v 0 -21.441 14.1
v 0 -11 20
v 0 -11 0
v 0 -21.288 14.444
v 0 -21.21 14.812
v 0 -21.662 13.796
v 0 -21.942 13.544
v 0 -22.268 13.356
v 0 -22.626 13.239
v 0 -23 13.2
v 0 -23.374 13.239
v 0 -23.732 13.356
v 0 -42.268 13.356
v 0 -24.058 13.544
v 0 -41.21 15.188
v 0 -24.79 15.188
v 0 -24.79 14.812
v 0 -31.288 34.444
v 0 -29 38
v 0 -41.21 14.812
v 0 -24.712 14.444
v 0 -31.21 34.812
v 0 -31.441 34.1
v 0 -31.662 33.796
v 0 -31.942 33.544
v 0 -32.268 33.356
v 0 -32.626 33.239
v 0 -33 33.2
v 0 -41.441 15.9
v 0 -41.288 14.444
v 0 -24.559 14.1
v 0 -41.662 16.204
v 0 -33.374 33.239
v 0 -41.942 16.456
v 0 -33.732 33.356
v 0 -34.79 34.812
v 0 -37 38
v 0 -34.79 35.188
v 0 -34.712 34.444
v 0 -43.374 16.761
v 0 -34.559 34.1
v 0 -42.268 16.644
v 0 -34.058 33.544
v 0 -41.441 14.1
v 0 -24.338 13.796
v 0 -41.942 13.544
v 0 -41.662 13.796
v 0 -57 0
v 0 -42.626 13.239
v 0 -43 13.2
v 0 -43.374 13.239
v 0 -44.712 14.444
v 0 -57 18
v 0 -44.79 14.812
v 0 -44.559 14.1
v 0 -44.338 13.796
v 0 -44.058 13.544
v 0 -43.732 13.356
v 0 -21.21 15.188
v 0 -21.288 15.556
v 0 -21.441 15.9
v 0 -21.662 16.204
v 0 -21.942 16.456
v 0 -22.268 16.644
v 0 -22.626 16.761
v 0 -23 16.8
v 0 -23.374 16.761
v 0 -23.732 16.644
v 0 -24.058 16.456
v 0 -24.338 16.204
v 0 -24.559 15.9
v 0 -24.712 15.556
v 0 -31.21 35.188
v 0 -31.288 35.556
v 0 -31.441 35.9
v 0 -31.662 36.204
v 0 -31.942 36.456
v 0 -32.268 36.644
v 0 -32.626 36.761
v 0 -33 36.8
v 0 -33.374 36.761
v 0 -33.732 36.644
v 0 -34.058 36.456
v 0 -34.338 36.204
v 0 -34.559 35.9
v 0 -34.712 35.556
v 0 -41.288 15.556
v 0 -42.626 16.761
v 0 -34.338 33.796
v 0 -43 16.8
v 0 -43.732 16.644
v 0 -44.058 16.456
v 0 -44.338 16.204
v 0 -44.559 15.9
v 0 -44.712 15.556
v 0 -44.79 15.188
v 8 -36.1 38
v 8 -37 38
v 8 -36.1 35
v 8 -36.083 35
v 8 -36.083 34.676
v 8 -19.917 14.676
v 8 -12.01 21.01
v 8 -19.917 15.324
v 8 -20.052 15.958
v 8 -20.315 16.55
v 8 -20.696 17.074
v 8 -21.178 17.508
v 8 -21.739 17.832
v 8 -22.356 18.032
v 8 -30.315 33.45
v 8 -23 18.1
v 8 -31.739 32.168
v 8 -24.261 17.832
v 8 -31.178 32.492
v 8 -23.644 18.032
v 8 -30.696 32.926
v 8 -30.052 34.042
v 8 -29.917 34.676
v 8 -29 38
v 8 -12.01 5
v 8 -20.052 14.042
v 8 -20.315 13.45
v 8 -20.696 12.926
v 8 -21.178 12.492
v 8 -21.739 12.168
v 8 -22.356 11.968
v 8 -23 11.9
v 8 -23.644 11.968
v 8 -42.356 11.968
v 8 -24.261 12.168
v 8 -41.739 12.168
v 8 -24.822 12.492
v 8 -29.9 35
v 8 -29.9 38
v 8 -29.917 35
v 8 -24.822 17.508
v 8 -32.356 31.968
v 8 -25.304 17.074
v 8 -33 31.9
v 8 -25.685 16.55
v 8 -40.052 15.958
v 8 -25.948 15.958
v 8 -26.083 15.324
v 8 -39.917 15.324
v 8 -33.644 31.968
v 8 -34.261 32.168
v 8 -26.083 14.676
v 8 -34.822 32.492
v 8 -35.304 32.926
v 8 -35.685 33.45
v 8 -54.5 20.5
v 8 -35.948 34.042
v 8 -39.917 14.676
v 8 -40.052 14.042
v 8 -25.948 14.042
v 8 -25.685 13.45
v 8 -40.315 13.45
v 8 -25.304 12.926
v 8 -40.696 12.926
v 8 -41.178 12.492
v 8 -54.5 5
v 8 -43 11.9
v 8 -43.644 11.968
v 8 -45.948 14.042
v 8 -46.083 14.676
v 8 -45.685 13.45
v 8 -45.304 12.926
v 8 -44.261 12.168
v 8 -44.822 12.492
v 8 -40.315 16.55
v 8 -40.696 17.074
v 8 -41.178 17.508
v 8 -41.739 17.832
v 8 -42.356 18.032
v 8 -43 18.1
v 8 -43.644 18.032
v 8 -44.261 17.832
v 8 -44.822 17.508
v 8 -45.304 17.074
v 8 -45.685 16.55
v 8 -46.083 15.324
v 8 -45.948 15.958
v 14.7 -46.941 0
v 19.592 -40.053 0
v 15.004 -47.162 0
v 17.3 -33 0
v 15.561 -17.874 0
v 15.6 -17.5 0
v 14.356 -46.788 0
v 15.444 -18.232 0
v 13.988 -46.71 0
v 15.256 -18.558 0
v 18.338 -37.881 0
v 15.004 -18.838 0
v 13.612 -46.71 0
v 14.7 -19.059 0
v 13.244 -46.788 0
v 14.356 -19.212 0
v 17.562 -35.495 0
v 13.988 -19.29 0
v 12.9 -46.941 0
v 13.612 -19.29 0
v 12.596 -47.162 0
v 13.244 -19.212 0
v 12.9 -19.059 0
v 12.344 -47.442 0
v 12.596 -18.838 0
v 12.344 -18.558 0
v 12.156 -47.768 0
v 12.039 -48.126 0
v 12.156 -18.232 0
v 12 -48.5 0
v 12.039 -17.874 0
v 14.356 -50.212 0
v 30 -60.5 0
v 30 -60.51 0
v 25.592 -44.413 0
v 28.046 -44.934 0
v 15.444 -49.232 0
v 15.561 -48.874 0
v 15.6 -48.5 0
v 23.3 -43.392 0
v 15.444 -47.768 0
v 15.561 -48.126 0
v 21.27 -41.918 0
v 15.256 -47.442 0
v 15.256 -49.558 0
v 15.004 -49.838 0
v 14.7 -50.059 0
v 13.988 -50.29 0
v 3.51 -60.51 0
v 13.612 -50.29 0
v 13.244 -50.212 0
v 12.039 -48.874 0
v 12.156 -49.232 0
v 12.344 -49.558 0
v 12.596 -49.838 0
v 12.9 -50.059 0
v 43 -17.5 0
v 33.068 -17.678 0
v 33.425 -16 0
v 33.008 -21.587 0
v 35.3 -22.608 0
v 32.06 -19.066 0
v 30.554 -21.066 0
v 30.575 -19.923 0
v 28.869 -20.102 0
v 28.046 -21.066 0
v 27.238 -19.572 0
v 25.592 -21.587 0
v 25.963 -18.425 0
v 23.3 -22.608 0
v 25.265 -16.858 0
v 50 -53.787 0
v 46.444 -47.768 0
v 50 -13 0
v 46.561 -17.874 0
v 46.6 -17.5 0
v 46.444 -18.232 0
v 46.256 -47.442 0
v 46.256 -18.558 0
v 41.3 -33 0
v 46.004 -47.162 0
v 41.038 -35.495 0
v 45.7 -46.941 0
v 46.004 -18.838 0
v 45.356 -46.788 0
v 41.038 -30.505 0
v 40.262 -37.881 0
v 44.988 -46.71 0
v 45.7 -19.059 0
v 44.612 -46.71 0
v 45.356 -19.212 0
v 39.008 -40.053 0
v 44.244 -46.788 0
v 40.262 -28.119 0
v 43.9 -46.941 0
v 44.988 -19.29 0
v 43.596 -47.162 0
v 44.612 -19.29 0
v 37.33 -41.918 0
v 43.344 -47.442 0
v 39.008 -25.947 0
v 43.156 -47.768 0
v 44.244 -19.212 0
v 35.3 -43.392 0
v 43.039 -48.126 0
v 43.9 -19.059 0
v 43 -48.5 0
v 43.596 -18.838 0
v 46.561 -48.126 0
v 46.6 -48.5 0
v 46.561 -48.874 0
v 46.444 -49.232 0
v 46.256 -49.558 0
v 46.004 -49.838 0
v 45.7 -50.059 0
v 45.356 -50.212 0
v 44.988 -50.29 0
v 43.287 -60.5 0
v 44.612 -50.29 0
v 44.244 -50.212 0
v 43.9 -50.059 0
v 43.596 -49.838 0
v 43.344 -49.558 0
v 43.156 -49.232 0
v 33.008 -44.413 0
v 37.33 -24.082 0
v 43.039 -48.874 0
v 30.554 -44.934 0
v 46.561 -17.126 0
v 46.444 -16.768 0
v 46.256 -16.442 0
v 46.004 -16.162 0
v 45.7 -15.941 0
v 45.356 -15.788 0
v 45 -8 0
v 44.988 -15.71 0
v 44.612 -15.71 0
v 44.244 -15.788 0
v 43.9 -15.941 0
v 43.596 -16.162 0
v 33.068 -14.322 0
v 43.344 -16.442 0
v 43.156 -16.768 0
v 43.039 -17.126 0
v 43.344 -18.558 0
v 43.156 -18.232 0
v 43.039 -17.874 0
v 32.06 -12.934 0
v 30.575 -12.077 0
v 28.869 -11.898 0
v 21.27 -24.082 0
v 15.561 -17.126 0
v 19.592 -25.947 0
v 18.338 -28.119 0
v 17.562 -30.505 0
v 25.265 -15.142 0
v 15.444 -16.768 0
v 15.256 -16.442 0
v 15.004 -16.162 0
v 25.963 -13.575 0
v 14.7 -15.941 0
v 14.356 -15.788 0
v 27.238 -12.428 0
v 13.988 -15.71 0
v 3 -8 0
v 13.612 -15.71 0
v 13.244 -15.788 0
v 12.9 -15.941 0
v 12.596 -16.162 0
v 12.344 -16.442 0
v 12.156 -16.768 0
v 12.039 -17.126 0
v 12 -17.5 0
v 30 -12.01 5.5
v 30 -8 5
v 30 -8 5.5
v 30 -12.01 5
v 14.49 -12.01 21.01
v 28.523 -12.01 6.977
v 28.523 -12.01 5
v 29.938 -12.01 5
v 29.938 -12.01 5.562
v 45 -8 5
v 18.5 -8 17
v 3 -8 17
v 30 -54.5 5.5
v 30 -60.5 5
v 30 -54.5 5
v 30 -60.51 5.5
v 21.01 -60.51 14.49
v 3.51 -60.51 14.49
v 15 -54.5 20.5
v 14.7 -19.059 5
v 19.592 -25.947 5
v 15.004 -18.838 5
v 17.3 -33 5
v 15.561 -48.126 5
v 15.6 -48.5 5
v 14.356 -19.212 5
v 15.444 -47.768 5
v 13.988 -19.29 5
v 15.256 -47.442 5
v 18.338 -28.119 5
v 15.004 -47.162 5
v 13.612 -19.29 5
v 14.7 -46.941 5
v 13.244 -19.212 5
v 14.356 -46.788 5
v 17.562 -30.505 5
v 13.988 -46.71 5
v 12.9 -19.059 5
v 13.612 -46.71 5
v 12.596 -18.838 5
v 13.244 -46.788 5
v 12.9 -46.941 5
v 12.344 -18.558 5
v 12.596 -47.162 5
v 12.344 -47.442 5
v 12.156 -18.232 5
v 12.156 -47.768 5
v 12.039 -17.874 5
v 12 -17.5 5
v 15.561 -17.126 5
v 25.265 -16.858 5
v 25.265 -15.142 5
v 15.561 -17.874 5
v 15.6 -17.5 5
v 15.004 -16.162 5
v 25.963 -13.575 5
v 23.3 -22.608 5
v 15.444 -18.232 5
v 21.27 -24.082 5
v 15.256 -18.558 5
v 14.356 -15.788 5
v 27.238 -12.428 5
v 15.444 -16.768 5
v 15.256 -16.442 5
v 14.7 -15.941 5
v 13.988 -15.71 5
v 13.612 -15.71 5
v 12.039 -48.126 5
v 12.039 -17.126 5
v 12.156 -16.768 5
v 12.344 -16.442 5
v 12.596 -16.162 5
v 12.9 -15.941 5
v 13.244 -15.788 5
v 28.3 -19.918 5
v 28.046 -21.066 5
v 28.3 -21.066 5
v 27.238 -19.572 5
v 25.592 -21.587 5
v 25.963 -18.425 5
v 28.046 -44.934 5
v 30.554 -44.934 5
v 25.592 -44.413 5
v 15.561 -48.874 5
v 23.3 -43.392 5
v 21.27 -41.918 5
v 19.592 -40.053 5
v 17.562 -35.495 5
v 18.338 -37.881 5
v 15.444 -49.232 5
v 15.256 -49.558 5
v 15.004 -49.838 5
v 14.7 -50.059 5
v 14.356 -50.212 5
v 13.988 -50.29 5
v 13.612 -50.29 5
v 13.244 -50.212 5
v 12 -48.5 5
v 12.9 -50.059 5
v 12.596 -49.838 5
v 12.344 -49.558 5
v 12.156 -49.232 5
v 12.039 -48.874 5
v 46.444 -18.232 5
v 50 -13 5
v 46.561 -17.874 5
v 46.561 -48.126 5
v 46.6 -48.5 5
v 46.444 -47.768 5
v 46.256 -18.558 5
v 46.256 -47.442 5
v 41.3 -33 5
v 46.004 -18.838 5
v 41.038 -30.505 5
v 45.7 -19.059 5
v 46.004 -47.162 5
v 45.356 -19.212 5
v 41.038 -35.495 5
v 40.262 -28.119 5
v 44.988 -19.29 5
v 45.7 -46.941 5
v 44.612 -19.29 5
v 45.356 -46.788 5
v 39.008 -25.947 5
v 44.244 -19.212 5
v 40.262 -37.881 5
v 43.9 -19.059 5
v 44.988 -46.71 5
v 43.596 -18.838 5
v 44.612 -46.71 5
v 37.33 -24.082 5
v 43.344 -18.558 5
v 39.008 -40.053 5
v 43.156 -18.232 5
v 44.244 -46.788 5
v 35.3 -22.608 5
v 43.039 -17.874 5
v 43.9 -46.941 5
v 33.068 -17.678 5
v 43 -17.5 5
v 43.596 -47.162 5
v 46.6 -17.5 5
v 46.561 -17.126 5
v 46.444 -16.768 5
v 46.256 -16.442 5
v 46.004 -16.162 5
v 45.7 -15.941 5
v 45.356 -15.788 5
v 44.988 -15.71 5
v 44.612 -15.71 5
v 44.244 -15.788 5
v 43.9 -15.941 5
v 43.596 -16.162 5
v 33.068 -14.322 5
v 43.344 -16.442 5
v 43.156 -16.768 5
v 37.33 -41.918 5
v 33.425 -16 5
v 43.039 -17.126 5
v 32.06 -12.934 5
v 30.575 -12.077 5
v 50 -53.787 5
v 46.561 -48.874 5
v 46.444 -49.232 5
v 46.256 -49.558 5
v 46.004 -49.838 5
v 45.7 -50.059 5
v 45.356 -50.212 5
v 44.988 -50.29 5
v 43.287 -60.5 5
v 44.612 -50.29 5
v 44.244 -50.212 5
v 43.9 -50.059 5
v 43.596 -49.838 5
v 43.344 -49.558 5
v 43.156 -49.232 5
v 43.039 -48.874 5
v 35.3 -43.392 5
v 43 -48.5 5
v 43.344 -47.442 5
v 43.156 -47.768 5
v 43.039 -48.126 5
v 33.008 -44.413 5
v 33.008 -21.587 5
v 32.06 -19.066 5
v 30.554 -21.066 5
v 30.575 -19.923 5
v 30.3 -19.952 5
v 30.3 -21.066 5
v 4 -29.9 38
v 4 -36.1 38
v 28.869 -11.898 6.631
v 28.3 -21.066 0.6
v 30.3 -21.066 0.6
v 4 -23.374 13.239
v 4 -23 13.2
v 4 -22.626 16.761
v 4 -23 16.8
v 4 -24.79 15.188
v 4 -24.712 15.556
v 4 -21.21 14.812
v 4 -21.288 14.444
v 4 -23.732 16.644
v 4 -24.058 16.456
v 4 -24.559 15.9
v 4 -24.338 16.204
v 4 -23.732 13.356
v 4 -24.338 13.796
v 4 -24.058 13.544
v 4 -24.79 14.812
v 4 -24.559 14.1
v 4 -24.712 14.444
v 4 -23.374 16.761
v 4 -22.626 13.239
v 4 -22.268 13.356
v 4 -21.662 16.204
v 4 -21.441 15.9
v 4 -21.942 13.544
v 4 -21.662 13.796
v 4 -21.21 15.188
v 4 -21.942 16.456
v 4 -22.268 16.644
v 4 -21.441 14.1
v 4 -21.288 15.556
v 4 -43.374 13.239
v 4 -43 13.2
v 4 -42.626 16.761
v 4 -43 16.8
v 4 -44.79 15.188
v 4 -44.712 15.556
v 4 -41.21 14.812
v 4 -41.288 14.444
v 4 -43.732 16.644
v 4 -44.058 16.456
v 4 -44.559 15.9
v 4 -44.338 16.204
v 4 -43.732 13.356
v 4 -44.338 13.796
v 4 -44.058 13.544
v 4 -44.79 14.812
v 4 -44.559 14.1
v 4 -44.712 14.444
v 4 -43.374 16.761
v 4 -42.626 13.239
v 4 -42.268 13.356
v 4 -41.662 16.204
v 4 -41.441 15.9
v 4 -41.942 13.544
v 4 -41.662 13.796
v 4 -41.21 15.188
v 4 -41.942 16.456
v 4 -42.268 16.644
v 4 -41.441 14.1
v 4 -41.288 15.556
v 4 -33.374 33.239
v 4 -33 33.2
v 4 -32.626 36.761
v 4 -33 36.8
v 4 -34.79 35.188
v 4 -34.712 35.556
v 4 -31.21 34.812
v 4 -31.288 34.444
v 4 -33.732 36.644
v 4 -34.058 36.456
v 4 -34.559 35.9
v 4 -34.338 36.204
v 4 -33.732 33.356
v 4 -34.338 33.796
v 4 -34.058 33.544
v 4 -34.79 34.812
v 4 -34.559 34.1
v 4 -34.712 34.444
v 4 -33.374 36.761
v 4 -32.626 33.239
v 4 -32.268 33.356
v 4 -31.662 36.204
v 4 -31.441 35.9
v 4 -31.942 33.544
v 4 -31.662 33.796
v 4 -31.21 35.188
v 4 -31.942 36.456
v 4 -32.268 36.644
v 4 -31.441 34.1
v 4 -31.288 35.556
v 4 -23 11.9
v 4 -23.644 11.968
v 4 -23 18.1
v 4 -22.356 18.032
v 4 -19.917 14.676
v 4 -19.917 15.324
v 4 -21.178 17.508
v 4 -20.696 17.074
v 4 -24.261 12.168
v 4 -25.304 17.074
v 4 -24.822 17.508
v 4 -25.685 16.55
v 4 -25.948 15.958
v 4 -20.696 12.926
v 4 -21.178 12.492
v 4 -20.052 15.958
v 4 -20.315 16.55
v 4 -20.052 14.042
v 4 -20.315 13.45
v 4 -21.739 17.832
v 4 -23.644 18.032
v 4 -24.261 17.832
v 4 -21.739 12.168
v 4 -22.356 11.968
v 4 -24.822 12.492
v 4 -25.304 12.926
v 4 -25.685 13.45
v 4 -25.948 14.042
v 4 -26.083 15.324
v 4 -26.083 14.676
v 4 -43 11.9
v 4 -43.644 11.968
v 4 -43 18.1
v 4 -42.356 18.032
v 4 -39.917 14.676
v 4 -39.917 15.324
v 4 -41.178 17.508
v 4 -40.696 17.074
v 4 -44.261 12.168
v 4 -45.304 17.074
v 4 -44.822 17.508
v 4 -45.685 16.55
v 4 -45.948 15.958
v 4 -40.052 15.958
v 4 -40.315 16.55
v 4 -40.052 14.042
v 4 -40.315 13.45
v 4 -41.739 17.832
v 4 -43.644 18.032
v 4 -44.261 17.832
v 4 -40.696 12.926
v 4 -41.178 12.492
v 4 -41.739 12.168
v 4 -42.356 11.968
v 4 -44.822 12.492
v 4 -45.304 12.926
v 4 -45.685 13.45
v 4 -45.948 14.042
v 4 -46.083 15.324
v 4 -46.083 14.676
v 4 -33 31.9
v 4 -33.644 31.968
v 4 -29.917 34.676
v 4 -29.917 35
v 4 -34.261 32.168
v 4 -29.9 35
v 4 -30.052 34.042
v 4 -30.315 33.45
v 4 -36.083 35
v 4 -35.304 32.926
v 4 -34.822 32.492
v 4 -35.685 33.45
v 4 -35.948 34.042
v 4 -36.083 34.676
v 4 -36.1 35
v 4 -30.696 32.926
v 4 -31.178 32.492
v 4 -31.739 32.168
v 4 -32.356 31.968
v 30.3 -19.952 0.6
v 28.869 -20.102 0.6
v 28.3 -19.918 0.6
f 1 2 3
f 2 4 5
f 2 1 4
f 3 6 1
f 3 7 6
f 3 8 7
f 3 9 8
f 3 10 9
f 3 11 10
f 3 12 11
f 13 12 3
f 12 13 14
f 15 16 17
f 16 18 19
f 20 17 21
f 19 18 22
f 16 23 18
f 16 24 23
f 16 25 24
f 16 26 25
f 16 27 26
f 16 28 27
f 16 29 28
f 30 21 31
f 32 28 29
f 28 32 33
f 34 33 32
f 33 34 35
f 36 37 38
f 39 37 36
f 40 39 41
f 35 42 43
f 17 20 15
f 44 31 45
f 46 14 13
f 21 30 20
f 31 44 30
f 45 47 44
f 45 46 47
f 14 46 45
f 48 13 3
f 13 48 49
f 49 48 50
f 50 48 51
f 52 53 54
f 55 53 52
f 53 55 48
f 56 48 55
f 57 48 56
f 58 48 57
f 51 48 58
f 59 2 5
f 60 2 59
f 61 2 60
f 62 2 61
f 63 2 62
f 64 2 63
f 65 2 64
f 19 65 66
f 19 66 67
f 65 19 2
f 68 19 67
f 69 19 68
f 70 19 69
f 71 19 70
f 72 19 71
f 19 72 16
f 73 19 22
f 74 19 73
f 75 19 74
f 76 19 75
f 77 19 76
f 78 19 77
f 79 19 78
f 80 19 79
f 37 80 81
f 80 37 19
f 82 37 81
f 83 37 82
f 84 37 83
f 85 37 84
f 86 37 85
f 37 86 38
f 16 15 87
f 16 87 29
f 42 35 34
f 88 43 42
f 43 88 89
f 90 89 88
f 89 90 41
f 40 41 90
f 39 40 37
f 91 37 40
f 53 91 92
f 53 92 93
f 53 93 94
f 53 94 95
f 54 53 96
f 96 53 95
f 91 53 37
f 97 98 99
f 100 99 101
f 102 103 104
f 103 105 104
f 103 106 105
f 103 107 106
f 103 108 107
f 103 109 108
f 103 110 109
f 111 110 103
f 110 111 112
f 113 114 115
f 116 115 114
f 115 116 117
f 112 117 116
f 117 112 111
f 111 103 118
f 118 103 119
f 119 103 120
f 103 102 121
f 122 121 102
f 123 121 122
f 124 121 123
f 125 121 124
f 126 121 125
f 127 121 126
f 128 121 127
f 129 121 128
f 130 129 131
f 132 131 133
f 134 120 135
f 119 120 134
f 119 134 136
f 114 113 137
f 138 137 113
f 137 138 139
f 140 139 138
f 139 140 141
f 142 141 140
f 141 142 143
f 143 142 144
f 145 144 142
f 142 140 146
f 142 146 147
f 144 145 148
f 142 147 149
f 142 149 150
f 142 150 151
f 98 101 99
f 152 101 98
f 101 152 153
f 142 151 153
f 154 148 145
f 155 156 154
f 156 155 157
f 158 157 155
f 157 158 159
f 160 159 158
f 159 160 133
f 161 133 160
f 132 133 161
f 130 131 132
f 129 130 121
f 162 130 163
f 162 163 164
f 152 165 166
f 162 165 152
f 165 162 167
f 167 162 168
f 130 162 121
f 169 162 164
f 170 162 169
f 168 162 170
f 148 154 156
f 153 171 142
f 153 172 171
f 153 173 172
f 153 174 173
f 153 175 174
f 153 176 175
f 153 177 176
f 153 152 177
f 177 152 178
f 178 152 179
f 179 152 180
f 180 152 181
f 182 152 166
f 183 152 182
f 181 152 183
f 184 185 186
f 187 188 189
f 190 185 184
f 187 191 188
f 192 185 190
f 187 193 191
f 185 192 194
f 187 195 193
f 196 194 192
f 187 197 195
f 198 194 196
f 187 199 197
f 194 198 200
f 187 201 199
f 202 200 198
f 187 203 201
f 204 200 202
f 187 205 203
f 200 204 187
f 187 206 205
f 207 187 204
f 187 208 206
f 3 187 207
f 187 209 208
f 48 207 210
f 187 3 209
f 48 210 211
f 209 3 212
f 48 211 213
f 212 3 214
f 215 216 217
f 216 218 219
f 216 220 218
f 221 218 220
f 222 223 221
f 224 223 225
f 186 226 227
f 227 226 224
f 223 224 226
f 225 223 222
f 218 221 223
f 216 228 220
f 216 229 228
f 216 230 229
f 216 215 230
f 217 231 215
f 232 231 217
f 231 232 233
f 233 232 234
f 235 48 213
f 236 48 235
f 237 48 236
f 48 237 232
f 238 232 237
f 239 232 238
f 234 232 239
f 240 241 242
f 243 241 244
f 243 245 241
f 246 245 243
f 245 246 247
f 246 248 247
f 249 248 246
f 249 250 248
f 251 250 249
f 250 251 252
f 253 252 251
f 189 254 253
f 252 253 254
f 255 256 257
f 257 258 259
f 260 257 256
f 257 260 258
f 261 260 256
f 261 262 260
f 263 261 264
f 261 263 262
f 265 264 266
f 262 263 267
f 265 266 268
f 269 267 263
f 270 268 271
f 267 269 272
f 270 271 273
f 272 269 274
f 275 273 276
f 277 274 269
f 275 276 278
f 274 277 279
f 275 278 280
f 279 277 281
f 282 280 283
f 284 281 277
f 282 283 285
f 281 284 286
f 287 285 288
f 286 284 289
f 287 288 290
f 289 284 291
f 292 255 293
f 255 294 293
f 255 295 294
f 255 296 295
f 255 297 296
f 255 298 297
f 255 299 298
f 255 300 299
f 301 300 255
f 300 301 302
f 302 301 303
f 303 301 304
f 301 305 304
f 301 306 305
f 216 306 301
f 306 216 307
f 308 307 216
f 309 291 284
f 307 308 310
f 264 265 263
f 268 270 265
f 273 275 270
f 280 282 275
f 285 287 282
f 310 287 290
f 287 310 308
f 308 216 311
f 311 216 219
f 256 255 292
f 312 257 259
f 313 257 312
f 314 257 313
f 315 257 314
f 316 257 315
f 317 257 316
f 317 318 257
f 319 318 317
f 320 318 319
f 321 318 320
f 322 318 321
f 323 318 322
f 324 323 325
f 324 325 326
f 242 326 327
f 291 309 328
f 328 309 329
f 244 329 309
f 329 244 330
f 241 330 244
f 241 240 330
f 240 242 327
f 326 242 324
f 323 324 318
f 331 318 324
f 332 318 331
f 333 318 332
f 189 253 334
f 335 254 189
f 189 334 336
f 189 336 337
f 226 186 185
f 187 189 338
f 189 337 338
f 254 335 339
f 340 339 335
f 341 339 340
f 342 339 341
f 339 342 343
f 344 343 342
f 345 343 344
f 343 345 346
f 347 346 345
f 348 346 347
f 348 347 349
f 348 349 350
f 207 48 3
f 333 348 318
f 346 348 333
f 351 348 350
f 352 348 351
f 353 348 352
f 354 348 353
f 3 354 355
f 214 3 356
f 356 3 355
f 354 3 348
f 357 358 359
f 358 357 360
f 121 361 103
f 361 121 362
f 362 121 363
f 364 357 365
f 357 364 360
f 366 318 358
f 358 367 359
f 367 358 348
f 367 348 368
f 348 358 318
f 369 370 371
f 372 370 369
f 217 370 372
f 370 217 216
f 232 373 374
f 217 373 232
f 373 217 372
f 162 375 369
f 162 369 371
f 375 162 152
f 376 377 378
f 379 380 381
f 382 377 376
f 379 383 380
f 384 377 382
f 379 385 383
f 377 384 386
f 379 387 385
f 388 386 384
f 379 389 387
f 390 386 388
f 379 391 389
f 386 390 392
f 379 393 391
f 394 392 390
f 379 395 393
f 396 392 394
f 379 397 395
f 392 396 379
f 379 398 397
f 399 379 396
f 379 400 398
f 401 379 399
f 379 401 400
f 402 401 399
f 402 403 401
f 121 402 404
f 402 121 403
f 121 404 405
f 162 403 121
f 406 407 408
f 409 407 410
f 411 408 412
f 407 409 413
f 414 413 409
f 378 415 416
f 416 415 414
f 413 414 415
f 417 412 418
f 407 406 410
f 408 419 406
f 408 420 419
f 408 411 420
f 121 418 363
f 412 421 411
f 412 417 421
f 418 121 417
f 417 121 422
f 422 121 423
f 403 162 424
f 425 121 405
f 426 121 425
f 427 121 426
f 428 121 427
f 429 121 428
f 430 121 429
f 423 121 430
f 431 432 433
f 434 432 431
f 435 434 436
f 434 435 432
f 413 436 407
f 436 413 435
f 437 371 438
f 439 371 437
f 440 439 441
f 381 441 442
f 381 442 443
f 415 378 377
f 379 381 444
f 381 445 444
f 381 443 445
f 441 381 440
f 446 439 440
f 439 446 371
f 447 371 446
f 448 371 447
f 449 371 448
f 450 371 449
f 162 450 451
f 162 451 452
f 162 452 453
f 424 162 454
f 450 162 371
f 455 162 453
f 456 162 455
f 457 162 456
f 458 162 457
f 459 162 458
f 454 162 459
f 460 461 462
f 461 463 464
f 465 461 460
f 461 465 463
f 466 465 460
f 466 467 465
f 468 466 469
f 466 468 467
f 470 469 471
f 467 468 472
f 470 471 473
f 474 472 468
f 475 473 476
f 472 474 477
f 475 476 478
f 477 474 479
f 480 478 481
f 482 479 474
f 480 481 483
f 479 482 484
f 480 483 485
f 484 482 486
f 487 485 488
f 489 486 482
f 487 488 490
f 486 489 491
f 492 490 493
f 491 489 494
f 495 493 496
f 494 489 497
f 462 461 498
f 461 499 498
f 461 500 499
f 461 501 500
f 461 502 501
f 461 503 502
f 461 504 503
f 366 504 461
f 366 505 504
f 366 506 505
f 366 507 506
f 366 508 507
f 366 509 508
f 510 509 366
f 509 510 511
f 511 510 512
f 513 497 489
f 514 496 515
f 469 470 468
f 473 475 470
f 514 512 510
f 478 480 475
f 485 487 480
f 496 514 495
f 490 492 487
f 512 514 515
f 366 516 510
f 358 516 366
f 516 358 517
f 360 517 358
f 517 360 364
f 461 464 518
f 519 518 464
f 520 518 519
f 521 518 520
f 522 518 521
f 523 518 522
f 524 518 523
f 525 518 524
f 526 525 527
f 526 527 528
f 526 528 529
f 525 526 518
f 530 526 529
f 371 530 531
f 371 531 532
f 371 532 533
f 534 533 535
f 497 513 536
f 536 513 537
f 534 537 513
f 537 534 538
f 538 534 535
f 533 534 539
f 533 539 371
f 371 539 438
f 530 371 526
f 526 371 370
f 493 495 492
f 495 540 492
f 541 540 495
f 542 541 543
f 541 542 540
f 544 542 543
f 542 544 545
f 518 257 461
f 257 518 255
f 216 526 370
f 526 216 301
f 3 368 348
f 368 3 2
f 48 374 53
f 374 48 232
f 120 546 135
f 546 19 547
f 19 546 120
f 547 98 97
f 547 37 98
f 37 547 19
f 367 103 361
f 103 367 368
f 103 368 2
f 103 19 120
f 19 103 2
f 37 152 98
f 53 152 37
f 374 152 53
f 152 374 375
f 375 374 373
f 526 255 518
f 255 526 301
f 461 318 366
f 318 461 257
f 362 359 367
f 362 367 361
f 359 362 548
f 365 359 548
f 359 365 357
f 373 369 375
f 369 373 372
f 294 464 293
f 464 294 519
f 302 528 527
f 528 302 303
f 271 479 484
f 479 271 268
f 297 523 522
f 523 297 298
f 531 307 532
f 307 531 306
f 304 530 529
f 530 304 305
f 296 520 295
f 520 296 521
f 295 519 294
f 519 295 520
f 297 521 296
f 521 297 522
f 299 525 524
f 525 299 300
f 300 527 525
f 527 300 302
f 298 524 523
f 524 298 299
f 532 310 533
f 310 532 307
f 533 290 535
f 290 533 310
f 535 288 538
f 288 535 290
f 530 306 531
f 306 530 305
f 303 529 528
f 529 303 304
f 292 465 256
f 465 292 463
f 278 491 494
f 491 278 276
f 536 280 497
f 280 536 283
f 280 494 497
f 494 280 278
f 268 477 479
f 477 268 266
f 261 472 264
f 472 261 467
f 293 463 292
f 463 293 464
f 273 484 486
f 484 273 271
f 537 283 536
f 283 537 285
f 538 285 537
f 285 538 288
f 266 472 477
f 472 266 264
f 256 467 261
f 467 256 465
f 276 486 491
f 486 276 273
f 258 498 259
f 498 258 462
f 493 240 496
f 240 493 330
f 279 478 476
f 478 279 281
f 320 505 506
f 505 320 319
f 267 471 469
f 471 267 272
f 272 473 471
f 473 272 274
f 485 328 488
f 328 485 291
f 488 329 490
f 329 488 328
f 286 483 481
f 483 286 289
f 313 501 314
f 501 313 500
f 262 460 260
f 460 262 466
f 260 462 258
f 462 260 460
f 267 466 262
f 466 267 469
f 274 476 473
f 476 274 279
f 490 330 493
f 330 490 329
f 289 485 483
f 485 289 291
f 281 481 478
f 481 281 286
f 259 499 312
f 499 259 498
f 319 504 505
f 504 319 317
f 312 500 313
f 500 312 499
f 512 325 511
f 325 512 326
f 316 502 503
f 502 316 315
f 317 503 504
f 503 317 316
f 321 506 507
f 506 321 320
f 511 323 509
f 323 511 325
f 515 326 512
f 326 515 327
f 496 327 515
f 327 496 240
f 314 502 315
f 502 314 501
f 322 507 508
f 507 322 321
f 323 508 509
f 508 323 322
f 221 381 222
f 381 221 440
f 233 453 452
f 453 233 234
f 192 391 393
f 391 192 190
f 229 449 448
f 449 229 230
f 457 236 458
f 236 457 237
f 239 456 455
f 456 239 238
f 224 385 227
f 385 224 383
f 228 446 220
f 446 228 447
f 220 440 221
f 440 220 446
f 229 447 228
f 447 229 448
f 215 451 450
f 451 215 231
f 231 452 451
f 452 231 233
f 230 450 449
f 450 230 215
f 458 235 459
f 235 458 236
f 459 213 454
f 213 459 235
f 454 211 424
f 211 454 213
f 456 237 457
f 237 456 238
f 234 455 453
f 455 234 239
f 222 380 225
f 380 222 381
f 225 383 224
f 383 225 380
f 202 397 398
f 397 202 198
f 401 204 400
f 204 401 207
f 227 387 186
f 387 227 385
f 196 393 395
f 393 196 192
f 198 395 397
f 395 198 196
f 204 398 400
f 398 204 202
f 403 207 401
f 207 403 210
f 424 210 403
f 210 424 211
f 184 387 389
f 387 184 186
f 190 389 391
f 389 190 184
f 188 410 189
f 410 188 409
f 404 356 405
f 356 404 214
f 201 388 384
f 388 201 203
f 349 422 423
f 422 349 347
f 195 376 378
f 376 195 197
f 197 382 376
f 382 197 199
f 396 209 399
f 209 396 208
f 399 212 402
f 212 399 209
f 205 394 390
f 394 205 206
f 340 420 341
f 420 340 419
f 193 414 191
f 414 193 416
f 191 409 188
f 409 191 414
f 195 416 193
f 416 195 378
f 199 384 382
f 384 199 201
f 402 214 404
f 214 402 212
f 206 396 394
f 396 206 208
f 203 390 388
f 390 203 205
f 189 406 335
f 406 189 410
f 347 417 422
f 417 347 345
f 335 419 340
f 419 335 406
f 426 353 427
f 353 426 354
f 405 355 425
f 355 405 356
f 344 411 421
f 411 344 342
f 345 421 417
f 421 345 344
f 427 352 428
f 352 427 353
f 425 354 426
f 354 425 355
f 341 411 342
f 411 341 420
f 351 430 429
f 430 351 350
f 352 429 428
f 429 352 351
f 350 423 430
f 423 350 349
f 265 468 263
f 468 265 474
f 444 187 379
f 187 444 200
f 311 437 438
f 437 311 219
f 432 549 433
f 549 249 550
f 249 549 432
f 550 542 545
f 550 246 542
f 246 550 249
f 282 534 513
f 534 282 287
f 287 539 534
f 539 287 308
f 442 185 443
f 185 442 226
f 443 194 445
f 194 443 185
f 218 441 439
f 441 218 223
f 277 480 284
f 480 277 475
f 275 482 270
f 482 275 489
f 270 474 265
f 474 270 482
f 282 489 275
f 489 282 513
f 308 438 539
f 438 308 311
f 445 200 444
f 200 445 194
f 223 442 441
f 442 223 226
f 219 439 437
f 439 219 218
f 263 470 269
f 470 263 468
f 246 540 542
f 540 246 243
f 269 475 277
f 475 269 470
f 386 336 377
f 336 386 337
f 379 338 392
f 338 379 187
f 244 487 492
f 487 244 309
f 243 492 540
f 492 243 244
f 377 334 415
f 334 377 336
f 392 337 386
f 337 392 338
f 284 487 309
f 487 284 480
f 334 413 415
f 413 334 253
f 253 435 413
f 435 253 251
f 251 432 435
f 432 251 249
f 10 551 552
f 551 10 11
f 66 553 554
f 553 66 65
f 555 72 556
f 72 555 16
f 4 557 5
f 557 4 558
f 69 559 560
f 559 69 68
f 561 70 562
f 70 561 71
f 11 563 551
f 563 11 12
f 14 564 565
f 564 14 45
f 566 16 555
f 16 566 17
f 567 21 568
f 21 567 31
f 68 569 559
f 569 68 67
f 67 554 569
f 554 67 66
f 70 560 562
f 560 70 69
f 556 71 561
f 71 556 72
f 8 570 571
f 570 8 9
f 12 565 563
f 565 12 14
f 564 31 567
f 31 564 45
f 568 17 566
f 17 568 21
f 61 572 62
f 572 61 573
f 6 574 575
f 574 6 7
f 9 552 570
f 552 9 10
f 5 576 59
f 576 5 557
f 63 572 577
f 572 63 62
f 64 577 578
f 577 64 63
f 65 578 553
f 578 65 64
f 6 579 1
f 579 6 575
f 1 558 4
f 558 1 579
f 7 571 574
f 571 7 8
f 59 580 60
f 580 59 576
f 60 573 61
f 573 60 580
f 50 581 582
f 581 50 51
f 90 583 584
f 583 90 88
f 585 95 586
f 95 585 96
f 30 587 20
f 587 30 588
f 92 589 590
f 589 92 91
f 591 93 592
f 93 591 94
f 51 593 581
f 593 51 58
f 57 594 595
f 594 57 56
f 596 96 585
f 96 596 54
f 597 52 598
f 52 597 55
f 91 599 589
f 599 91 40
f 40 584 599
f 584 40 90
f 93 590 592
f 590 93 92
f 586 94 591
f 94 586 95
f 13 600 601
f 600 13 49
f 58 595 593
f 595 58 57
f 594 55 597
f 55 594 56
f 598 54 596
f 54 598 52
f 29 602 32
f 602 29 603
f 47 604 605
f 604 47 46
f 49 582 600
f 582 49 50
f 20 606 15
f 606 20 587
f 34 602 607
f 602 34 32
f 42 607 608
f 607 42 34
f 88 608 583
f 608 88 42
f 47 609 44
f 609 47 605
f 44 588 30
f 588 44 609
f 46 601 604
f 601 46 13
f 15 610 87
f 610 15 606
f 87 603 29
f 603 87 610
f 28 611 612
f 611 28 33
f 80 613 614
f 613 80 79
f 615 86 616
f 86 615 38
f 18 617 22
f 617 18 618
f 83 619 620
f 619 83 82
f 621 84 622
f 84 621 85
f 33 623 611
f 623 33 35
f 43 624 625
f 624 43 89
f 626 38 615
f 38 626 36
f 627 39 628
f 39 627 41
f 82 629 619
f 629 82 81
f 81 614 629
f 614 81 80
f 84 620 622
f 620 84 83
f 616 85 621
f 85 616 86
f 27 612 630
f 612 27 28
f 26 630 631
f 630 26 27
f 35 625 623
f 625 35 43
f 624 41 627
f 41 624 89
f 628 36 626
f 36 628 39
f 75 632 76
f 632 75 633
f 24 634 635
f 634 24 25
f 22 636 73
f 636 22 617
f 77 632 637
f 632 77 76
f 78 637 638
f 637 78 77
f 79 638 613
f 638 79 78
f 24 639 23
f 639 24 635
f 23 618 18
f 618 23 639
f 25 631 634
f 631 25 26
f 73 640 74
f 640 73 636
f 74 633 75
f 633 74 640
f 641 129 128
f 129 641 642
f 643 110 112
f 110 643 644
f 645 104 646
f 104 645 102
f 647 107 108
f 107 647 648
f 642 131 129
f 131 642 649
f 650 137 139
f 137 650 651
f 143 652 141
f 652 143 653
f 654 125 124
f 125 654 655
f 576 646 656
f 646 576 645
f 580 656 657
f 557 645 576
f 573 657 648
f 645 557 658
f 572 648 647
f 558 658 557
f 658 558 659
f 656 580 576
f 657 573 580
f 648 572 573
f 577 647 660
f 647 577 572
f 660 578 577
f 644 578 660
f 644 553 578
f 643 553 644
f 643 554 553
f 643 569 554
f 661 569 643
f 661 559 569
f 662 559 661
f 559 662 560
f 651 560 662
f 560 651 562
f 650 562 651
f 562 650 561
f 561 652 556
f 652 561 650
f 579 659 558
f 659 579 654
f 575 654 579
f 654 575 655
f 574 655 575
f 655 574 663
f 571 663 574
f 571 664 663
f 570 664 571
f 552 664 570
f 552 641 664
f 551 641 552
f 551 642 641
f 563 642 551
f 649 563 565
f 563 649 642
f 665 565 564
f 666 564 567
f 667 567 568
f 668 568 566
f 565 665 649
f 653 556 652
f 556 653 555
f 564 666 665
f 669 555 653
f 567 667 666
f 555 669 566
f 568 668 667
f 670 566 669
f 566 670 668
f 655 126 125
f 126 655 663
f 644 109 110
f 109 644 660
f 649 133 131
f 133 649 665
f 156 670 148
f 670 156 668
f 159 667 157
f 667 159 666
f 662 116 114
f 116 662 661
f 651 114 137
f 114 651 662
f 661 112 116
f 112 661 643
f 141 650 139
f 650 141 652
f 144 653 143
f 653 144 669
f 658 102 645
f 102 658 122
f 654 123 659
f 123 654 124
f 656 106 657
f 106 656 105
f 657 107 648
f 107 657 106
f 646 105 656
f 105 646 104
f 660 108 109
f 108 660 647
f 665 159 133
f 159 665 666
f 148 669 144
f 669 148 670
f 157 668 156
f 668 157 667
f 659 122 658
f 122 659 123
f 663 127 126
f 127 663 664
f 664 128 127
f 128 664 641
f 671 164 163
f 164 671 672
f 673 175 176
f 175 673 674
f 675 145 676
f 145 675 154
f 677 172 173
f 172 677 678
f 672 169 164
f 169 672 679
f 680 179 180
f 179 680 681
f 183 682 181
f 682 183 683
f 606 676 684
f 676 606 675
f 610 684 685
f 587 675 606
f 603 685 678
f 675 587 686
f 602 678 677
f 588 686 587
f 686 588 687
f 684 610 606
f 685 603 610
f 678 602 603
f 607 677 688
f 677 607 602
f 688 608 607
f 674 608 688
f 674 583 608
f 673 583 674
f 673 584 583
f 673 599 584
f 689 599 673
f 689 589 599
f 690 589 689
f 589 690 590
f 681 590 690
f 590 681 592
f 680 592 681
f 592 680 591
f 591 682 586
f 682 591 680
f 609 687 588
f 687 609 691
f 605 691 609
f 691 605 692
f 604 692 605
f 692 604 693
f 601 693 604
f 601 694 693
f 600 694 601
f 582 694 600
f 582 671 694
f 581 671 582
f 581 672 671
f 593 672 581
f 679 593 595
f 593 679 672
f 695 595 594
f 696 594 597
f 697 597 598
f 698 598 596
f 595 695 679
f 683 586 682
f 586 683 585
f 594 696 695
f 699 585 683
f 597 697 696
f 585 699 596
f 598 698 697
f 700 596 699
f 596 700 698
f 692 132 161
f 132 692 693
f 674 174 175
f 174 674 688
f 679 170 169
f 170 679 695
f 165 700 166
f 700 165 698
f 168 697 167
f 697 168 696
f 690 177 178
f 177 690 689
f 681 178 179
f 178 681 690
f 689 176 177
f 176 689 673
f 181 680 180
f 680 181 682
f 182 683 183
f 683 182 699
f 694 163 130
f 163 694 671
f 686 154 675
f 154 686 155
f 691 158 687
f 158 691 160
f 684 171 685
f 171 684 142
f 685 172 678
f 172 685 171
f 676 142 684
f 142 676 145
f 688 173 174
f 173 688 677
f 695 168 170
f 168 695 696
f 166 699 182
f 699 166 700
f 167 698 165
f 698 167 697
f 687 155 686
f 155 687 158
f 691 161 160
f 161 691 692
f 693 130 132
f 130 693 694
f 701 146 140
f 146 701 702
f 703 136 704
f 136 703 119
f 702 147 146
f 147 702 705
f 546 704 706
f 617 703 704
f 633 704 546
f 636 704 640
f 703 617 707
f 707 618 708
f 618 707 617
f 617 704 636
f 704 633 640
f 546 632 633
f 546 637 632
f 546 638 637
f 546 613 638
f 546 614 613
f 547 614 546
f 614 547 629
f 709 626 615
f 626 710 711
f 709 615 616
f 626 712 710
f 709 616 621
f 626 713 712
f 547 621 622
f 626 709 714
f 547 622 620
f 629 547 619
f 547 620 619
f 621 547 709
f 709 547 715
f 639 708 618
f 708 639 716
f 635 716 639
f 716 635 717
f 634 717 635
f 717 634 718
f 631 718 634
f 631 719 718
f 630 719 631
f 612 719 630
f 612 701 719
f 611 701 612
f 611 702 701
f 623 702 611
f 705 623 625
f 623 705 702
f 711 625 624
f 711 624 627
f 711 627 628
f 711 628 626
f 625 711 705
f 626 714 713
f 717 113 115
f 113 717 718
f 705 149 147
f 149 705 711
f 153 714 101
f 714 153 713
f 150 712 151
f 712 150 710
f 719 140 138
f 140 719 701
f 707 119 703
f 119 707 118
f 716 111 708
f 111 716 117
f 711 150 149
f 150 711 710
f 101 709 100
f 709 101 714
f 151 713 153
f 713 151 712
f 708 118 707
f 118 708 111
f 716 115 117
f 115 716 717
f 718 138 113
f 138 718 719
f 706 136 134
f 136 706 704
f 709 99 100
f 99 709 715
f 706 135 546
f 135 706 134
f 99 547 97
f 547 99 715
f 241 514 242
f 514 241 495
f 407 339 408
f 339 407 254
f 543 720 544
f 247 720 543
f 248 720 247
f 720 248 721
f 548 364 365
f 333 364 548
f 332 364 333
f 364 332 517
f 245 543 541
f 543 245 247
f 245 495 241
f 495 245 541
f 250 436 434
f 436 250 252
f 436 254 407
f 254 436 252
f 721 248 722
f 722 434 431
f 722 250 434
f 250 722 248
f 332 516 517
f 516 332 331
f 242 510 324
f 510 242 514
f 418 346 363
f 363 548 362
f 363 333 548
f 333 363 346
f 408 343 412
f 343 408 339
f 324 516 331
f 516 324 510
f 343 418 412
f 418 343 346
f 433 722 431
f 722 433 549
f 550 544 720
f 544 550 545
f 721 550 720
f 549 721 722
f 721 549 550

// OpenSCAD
//Original Prusa

// PRUSA iteration3
// Z axis bottom holder
// GNU GPL v3
// Josef Průša <iam@josefprusa.cz> and contributors
// http://www.reprap.org/wiki/Prusa_Mendel
// http://prusamendel.org

module z_bottom_base(){
 translate([0,-1.5,0]) cube([8,49,16+25]); // plate touching the base
 translate([0,-5,0]) cube([30,4.01,22]); // plate touching the base
 translate([0,41.5,0]) cube([30,6.01,22]); // plate touching the base
 translate([0,-5,0]) cube([50,52.5,5]); // plate touching the base
}

module z_bottom_fancy(){
 // corner cutouts
 translate([0.5,-2.5,0]) rotate([0,0,-45-180]) translate([-15,0,-1]) cube([30,30,51]);
 translate([0.5,40-0.5+5,0]) rotate([0,0,-45+90]) translate([-15,0,-1]) cube([30,30,51]);
 //translate([-4,40+5,5]) rotate([0,0,-35-0]) translate([0,0,0.1]) cube([30,30,51]);
 //translate([-4+11,40+5+5,0]) rotate([0,0,-45-0]) translate([0,0,-1]) cube([30,30,51]);
 translate([8,0,12+20+6]) rotate([0,-90,0]) translate([0,-5,0]) cube([30,50,30]);
 translate([20,-2,12+8]) rotate([45,0,0]) rotate([0,-90,0]) translate([0,-5,0]) cube([30,50,30]);
 translate([25,20,12+30]) rotate([-45,0,0]) rotate([0,-90,0]) translate([0,-5,0]) cube([30,50,30]);
 translate([50-2.5,-5+2.5+67,0]) rotate([0,0,-45-90]) translate([-15,0,-1]) cube([30,30,51]);
 translate([50-2.5,-5+2.5,0]) rotate([0,0,-45-90]) translate([-15,0,-1]) cube([30,30,51]);
 //translate([50-1.5,10-1.5,0]) rotate([0,0,-45]) translate([-15,0,-1]) cube([30,30,51]);
 //translate([0,0,5]) rotate([45+180,0,0]) rotate([0,0,-45+90]) translate([0,0,-15]) cube([30,30,30]);
 // Stiffner cut out
   translate([30,0,5.5]) rotate([0,-45,0]) translate([0,-5,0]) cube([30,60,30]);
}

module z_bottom_holes(){
 // Frame mounting screw holes
 translate([-1,10,10+5]) rotate([0,90,0]) cylinder(h = 20, r=1.8, $fn=30);
 translate([-1,10+20,10+5]) rotate([0,90,0]) cylinder(h = 20, r=1.8, $fn=30);
 translate([-1,10+10,10+20+5]) rotate([0,90,0]) cylinder(h = 20, r=1.8, $fn=30);

 // Frame mounting screw head holes
 translate([4,10,10+5]) rotate([0,90,0]) cylinder(h = 20, r=3.1, $fn=30);
 translate([4,10+20,10+5]) rotate([0,90,0]) cylinder(h = 20, r=3.1, $fn=30);
 translate([4,10+10,10+20+5]) rotate([0,90,0]) cylinder(h = 20, r=3.1, $fn=30);
 translate([4,10+10-3.1,10+20+5]) cube([10,6.2,10]);

 // Z rod holder
 translate([25+4.3,3,-1]) rotate([0,0,0]) cylinder(h = 50, r=4.125, $fn=15);
 translate([25+4.3-1,3,0.6]) cube([2,10,7]); // it's bit up because it helps with printing

 // motor mounting
 translate([25+4.3,20,-1]){
 //translate([15.5,15.5,-1]) cylinder(h = 20, r=1.8, $fn=30);
 
 translate([15.5,15.5,-1]) cylinder(h = 20, r=1.8, $fn=30);
 translate([15.5,-15.5,-1]) cylinder(h = 20, r=1.8, $fn=30);
 translate([-15.5,15.5,-1]) cylinder(h = 20, r=1.8, $fn=30);
 translate([-15.5,-15.5,-1]) cylinder(h = 20, r=1.8, $fn=30);
 
 
 translate([0,0,-1]) cylinder(h = 20, r=12, $fn=30);
 }

}

module z_bottom_right(){
    difference(){
        z_bottom_base();
        z_bottom_fancy();
        z_bottom_holes();
    }
}

module z_bottom_left(){
 translate([0,-13,0]) mirror([0,1,0]) 
    difference(){
        z_bottom_base();
        z_bottom_fancy();
        z_bottom_holes();
 }
}

//z_bottom_holder();
//z_bottom_right();
z_bottom_left();
